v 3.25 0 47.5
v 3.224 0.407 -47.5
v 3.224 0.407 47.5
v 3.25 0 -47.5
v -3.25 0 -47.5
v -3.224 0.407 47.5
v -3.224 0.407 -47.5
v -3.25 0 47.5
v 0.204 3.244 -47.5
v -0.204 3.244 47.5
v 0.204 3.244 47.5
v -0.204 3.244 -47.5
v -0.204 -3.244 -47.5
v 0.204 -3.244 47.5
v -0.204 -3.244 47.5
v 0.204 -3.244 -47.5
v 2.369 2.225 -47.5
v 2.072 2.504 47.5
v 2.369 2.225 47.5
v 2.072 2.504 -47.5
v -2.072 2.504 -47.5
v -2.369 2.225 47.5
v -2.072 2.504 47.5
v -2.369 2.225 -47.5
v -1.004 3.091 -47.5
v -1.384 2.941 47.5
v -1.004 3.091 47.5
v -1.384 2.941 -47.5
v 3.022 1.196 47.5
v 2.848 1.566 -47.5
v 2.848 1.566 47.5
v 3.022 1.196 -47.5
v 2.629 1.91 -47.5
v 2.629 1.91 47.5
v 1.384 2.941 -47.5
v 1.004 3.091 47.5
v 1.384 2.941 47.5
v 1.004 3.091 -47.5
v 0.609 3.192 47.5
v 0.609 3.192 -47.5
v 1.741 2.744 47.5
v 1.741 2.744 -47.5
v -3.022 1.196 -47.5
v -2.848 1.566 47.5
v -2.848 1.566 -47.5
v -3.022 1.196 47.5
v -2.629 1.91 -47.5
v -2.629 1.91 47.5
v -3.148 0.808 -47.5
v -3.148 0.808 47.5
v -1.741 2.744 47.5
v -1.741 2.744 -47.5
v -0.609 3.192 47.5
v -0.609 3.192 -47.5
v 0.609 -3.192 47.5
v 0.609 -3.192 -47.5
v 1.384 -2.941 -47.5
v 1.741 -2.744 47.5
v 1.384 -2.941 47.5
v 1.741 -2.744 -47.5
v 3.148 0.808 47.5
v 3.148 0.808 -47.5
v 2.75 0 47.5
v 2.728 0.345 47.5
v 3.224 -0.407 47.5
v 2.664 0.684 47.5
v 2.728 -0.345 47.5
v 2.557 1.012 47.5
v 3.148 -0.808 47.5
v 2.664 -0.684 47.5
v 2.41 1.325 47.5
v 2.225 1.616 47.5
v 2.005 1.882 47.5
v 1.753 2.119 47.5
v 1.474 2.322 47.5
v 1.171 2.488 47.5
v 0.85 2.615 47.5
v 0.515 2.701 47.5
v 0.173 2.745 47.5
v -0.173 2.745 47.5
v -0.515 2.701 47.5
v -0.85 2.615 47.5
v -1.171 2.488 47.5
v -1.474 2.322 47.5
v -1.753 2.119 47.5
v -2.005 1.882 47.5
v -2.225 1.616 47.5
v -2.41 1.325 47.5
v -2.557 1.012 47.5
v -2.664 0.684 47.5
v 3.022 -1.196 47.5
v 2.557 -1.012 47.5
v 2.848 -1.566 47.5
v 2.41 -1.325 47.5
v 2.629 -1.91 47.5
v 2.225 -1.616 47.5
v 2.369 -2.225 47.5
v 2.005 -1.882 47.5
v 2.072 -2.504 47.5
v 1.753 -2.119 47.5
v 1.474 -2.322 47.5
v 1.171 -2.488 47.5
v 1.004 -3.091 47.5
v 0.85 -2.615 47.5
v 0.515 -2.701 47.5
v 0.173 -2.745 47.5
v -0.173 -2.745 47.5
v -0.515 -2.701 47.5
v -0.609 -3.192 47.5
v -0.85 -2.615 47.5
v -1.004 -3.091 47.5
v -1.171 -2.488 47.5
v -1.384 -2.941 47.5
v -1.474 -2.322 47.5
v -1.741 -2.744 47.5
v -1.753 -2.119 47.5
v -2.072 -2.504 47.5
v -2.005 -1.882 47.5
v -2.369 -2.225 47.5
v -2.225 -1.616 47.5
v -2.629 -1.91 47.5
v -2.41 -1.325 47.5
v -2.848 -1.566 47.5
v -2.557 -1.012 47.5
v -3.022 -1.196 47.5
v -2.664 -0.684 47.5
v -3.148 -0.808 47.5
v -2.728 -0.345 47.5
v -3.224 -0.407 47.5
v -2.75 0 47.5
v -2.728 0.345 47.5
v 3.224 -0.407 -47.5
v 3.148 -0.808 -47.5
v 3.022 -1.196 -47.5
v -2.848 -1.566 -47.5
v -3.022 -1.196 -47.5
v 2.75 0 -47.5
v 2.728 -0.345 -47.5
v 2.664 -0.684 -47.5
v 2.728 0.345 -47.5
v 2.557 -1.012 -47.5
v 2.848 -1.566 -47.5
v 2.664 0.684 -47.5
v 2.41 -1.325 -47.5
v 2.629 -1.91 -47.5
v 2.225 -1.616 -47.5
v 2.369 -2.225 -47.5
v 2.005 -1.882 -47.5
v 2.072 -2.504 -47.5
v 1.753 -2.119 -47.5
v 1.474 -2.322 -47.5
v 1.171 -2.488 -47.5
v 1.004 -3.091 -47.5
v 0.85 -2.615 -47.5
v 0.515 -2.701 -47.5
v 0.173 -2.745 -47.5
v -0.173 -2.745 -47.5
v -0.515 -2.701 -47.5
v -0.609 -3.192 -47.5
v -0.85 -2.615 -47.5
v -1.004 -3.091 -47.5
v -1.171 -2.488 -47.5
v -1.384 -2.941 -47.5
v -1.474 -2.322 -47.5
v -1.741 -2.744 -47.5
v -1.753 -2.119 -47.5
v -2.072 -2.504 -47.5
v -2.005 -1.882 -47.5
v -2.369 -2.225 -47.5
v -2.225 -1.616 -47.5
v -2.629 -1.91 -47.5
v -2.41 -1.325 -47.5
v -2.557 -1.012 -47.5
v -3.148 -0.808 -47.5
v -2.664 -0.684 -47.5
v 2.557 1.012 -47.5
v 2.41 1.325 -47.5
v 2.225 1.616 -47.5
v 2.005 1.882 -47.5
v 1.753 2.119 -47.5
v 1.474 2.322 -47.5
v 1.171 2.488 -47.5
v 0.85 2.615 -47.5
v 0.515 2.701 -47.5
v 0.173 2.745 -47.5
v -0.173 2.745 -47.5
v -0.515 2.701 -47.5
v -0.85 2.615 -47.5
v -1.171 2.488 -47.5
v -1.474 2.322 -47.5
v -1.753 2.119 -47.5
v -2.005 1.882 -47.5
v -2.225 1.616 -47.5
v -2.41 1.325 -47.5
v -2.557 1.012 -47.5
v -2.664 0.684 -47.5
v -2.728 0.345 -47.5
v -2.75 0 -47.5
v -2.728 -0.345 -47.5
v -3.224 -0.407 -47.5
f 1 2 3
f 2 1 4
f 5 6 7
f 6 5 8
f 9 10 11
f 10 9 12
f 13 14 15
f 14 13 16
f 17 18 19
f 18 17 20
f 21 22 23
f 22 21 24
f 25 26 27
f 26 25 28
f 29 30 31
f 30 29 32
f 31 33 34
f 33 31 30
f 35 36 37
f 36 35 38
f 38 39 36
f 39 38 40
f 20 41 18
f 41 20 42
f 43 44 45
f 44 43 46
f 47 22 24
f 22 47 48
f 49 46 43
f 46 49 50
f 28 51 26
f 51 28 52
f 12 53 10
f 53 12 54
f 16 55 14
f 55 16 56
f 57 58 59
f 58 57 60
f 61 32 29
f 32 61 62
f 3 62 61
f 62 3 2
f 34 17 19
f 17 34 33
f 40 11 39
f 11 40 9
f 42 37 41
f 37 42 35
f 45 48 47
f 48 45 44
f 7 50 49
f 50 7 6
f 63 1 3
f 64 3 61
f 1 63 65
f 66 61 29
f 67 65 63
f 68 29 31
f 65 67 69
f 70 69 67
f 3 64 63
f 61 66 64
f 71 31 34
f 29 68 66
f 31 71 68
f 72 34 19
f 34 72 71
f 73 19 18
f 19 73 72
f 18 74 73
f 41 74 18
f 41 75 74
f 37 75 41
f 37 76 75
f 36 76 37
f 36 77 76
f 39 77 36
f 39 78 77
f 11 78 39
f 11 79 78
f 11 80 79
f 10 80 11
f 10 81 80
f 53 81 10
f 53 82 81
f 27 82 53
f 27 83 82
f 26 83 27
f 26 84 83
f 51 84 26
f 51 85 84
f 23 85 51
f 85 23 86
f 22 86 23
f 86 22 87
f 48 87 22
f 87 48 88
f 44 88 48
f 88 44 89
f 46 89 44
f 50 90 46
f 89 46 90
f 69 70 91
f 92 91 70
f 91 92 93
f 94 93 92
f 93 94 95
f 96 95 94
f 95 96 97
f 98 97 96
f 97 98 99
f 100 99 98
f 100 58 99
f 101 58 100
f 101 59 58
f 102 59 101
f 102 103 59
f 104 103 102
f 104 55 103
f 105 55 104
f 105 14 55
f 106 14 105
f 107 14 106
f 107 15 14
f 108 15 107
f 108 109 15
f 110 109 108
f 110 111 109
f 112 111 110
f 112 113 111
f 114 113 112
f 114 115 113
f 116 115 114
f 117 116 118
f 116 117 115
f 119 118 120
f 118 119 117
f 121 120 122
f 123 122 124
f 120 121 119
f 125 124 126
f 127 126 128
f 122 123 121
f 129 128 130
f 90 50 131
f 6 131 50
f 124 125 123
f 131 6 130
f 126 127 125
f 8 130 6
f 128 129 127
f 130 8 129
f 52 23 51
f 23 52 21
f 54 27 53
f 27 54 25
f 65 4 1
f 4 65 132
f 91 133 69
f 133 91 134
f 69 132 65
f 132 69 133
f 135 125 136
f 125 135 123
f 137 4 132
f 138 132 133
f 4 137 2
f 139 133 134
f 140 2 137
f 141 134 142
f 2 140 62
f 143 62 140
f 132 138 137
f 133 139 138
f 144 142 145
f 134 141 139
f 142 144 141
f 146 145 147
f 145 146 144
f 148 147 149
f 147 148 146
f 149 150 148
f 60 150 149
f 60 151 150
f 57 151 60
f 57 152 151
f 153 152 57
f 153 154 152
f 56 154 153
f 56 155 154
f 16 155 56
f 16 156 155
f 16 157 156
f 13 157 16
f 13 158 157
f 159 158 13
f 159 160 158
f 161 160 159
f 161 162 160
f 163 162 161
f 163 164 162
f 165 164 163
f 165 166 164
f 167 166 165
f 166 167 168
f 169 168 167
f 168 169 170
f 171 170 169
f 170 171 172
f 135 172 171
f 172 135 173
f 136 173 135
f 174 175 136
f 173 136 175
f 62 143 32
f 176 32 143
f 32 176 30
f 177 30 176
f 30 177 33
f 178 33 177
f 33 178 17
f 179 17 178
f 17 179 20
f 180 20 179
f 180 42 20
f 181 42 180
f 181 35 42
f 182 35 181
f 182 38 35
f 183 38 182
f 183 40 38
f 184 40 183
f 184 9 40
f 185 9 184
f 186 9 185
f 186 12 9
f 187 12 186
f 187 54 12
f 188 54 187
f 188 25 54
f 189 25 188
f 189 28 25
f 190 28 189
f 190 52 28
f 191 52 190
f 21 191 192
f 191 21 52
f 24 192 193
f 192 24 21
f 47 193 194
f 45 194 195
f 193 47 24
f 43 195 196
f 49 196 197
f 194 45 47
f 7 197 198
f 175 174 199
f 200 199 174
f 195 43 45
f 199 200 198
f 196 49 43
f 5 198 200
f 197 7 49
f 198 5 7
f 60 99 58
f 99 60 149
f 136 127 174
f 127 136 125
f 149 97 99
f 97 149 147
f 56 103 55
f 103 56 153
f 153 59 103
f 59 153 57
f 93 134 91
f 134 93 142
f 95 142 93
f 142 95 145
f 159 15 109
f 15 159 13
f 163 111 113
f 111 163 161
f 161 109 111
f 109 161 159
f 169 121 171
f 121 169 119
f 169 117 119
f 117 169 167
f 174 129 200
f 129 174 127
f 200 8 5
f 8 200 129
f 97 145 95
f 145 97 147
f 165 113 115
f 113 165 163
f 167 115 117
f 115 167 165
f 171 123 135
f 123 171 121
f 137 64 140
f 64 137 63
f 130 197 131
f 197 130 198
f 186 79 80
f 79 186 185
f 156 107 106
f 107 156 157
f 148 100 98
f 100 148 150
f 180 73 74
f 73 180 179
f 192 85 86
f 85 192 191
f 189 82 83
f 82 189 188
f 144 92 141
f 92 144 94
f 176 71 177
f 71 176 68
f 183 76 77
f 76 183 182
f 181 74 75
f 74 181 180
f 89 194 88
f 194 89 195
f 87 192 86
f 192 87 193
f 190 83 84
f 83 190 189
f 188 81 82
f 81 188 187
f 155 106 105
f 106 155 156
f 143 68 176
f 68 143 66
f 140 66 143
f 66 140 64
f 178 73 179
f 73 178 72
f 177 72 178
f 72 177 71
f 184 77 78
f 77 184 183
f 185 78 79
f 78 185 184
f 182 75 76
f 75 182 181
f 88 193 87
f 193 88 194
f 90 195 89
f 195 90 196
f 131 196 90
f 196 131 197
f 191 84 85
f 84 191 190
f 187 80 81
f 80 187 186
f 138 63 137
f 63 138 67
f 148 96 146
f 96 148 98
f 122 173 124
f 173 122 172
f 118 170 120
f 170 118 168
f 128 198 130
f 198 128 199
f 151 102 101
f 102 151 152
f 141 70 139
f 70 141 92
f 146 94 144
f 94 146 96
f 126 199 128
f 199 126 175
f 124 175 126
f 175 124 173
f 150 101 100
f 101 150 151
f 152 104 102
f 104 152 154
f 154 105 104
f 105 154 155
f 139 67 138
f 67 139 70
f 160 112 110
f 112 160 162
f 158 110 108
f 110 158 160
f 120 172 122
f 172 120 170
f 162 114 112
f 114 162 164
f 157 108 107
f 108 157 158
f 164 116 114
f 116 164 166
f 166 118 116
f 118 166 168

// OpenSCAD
$fn = 50;


difference() {
	union() {
		translate(v = [0, 0, -47.5000000000]) {
			cylinder(h = 95, r = 3.2500000000);
		}
	}
	union() {
		translate(v = [0, 0, -100.0000000000]) {
			cylinder(h = 200, r = 2.7500000000);
		}
	}
}
